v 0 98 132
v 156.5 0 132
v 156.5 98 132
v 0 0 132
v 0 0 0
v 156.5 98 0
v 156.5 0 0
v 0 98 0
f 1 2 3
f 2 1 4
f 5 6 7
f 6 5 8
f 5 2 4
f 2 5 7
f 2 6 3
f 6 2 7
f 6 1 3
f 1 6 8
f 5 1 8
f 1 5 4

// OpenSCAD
// Opentrons Flex EV Resin Tips Tall Adapter for Third-party Evotips in 96 Tip Rack Adapter
// loadName: ev_resin_tips_flex_96_tiprack_adapter
// Auto-generated by labware_to_stl.py from Opentrons V2 labware definition

$fn = 32;

difference() {
    // ── Labware body ──────────────────────────────────────────────
    cube([156.5000, 98.0000, 132.0000]);

    // ── Well cutouts ──────────────────────────────────────────────
}
